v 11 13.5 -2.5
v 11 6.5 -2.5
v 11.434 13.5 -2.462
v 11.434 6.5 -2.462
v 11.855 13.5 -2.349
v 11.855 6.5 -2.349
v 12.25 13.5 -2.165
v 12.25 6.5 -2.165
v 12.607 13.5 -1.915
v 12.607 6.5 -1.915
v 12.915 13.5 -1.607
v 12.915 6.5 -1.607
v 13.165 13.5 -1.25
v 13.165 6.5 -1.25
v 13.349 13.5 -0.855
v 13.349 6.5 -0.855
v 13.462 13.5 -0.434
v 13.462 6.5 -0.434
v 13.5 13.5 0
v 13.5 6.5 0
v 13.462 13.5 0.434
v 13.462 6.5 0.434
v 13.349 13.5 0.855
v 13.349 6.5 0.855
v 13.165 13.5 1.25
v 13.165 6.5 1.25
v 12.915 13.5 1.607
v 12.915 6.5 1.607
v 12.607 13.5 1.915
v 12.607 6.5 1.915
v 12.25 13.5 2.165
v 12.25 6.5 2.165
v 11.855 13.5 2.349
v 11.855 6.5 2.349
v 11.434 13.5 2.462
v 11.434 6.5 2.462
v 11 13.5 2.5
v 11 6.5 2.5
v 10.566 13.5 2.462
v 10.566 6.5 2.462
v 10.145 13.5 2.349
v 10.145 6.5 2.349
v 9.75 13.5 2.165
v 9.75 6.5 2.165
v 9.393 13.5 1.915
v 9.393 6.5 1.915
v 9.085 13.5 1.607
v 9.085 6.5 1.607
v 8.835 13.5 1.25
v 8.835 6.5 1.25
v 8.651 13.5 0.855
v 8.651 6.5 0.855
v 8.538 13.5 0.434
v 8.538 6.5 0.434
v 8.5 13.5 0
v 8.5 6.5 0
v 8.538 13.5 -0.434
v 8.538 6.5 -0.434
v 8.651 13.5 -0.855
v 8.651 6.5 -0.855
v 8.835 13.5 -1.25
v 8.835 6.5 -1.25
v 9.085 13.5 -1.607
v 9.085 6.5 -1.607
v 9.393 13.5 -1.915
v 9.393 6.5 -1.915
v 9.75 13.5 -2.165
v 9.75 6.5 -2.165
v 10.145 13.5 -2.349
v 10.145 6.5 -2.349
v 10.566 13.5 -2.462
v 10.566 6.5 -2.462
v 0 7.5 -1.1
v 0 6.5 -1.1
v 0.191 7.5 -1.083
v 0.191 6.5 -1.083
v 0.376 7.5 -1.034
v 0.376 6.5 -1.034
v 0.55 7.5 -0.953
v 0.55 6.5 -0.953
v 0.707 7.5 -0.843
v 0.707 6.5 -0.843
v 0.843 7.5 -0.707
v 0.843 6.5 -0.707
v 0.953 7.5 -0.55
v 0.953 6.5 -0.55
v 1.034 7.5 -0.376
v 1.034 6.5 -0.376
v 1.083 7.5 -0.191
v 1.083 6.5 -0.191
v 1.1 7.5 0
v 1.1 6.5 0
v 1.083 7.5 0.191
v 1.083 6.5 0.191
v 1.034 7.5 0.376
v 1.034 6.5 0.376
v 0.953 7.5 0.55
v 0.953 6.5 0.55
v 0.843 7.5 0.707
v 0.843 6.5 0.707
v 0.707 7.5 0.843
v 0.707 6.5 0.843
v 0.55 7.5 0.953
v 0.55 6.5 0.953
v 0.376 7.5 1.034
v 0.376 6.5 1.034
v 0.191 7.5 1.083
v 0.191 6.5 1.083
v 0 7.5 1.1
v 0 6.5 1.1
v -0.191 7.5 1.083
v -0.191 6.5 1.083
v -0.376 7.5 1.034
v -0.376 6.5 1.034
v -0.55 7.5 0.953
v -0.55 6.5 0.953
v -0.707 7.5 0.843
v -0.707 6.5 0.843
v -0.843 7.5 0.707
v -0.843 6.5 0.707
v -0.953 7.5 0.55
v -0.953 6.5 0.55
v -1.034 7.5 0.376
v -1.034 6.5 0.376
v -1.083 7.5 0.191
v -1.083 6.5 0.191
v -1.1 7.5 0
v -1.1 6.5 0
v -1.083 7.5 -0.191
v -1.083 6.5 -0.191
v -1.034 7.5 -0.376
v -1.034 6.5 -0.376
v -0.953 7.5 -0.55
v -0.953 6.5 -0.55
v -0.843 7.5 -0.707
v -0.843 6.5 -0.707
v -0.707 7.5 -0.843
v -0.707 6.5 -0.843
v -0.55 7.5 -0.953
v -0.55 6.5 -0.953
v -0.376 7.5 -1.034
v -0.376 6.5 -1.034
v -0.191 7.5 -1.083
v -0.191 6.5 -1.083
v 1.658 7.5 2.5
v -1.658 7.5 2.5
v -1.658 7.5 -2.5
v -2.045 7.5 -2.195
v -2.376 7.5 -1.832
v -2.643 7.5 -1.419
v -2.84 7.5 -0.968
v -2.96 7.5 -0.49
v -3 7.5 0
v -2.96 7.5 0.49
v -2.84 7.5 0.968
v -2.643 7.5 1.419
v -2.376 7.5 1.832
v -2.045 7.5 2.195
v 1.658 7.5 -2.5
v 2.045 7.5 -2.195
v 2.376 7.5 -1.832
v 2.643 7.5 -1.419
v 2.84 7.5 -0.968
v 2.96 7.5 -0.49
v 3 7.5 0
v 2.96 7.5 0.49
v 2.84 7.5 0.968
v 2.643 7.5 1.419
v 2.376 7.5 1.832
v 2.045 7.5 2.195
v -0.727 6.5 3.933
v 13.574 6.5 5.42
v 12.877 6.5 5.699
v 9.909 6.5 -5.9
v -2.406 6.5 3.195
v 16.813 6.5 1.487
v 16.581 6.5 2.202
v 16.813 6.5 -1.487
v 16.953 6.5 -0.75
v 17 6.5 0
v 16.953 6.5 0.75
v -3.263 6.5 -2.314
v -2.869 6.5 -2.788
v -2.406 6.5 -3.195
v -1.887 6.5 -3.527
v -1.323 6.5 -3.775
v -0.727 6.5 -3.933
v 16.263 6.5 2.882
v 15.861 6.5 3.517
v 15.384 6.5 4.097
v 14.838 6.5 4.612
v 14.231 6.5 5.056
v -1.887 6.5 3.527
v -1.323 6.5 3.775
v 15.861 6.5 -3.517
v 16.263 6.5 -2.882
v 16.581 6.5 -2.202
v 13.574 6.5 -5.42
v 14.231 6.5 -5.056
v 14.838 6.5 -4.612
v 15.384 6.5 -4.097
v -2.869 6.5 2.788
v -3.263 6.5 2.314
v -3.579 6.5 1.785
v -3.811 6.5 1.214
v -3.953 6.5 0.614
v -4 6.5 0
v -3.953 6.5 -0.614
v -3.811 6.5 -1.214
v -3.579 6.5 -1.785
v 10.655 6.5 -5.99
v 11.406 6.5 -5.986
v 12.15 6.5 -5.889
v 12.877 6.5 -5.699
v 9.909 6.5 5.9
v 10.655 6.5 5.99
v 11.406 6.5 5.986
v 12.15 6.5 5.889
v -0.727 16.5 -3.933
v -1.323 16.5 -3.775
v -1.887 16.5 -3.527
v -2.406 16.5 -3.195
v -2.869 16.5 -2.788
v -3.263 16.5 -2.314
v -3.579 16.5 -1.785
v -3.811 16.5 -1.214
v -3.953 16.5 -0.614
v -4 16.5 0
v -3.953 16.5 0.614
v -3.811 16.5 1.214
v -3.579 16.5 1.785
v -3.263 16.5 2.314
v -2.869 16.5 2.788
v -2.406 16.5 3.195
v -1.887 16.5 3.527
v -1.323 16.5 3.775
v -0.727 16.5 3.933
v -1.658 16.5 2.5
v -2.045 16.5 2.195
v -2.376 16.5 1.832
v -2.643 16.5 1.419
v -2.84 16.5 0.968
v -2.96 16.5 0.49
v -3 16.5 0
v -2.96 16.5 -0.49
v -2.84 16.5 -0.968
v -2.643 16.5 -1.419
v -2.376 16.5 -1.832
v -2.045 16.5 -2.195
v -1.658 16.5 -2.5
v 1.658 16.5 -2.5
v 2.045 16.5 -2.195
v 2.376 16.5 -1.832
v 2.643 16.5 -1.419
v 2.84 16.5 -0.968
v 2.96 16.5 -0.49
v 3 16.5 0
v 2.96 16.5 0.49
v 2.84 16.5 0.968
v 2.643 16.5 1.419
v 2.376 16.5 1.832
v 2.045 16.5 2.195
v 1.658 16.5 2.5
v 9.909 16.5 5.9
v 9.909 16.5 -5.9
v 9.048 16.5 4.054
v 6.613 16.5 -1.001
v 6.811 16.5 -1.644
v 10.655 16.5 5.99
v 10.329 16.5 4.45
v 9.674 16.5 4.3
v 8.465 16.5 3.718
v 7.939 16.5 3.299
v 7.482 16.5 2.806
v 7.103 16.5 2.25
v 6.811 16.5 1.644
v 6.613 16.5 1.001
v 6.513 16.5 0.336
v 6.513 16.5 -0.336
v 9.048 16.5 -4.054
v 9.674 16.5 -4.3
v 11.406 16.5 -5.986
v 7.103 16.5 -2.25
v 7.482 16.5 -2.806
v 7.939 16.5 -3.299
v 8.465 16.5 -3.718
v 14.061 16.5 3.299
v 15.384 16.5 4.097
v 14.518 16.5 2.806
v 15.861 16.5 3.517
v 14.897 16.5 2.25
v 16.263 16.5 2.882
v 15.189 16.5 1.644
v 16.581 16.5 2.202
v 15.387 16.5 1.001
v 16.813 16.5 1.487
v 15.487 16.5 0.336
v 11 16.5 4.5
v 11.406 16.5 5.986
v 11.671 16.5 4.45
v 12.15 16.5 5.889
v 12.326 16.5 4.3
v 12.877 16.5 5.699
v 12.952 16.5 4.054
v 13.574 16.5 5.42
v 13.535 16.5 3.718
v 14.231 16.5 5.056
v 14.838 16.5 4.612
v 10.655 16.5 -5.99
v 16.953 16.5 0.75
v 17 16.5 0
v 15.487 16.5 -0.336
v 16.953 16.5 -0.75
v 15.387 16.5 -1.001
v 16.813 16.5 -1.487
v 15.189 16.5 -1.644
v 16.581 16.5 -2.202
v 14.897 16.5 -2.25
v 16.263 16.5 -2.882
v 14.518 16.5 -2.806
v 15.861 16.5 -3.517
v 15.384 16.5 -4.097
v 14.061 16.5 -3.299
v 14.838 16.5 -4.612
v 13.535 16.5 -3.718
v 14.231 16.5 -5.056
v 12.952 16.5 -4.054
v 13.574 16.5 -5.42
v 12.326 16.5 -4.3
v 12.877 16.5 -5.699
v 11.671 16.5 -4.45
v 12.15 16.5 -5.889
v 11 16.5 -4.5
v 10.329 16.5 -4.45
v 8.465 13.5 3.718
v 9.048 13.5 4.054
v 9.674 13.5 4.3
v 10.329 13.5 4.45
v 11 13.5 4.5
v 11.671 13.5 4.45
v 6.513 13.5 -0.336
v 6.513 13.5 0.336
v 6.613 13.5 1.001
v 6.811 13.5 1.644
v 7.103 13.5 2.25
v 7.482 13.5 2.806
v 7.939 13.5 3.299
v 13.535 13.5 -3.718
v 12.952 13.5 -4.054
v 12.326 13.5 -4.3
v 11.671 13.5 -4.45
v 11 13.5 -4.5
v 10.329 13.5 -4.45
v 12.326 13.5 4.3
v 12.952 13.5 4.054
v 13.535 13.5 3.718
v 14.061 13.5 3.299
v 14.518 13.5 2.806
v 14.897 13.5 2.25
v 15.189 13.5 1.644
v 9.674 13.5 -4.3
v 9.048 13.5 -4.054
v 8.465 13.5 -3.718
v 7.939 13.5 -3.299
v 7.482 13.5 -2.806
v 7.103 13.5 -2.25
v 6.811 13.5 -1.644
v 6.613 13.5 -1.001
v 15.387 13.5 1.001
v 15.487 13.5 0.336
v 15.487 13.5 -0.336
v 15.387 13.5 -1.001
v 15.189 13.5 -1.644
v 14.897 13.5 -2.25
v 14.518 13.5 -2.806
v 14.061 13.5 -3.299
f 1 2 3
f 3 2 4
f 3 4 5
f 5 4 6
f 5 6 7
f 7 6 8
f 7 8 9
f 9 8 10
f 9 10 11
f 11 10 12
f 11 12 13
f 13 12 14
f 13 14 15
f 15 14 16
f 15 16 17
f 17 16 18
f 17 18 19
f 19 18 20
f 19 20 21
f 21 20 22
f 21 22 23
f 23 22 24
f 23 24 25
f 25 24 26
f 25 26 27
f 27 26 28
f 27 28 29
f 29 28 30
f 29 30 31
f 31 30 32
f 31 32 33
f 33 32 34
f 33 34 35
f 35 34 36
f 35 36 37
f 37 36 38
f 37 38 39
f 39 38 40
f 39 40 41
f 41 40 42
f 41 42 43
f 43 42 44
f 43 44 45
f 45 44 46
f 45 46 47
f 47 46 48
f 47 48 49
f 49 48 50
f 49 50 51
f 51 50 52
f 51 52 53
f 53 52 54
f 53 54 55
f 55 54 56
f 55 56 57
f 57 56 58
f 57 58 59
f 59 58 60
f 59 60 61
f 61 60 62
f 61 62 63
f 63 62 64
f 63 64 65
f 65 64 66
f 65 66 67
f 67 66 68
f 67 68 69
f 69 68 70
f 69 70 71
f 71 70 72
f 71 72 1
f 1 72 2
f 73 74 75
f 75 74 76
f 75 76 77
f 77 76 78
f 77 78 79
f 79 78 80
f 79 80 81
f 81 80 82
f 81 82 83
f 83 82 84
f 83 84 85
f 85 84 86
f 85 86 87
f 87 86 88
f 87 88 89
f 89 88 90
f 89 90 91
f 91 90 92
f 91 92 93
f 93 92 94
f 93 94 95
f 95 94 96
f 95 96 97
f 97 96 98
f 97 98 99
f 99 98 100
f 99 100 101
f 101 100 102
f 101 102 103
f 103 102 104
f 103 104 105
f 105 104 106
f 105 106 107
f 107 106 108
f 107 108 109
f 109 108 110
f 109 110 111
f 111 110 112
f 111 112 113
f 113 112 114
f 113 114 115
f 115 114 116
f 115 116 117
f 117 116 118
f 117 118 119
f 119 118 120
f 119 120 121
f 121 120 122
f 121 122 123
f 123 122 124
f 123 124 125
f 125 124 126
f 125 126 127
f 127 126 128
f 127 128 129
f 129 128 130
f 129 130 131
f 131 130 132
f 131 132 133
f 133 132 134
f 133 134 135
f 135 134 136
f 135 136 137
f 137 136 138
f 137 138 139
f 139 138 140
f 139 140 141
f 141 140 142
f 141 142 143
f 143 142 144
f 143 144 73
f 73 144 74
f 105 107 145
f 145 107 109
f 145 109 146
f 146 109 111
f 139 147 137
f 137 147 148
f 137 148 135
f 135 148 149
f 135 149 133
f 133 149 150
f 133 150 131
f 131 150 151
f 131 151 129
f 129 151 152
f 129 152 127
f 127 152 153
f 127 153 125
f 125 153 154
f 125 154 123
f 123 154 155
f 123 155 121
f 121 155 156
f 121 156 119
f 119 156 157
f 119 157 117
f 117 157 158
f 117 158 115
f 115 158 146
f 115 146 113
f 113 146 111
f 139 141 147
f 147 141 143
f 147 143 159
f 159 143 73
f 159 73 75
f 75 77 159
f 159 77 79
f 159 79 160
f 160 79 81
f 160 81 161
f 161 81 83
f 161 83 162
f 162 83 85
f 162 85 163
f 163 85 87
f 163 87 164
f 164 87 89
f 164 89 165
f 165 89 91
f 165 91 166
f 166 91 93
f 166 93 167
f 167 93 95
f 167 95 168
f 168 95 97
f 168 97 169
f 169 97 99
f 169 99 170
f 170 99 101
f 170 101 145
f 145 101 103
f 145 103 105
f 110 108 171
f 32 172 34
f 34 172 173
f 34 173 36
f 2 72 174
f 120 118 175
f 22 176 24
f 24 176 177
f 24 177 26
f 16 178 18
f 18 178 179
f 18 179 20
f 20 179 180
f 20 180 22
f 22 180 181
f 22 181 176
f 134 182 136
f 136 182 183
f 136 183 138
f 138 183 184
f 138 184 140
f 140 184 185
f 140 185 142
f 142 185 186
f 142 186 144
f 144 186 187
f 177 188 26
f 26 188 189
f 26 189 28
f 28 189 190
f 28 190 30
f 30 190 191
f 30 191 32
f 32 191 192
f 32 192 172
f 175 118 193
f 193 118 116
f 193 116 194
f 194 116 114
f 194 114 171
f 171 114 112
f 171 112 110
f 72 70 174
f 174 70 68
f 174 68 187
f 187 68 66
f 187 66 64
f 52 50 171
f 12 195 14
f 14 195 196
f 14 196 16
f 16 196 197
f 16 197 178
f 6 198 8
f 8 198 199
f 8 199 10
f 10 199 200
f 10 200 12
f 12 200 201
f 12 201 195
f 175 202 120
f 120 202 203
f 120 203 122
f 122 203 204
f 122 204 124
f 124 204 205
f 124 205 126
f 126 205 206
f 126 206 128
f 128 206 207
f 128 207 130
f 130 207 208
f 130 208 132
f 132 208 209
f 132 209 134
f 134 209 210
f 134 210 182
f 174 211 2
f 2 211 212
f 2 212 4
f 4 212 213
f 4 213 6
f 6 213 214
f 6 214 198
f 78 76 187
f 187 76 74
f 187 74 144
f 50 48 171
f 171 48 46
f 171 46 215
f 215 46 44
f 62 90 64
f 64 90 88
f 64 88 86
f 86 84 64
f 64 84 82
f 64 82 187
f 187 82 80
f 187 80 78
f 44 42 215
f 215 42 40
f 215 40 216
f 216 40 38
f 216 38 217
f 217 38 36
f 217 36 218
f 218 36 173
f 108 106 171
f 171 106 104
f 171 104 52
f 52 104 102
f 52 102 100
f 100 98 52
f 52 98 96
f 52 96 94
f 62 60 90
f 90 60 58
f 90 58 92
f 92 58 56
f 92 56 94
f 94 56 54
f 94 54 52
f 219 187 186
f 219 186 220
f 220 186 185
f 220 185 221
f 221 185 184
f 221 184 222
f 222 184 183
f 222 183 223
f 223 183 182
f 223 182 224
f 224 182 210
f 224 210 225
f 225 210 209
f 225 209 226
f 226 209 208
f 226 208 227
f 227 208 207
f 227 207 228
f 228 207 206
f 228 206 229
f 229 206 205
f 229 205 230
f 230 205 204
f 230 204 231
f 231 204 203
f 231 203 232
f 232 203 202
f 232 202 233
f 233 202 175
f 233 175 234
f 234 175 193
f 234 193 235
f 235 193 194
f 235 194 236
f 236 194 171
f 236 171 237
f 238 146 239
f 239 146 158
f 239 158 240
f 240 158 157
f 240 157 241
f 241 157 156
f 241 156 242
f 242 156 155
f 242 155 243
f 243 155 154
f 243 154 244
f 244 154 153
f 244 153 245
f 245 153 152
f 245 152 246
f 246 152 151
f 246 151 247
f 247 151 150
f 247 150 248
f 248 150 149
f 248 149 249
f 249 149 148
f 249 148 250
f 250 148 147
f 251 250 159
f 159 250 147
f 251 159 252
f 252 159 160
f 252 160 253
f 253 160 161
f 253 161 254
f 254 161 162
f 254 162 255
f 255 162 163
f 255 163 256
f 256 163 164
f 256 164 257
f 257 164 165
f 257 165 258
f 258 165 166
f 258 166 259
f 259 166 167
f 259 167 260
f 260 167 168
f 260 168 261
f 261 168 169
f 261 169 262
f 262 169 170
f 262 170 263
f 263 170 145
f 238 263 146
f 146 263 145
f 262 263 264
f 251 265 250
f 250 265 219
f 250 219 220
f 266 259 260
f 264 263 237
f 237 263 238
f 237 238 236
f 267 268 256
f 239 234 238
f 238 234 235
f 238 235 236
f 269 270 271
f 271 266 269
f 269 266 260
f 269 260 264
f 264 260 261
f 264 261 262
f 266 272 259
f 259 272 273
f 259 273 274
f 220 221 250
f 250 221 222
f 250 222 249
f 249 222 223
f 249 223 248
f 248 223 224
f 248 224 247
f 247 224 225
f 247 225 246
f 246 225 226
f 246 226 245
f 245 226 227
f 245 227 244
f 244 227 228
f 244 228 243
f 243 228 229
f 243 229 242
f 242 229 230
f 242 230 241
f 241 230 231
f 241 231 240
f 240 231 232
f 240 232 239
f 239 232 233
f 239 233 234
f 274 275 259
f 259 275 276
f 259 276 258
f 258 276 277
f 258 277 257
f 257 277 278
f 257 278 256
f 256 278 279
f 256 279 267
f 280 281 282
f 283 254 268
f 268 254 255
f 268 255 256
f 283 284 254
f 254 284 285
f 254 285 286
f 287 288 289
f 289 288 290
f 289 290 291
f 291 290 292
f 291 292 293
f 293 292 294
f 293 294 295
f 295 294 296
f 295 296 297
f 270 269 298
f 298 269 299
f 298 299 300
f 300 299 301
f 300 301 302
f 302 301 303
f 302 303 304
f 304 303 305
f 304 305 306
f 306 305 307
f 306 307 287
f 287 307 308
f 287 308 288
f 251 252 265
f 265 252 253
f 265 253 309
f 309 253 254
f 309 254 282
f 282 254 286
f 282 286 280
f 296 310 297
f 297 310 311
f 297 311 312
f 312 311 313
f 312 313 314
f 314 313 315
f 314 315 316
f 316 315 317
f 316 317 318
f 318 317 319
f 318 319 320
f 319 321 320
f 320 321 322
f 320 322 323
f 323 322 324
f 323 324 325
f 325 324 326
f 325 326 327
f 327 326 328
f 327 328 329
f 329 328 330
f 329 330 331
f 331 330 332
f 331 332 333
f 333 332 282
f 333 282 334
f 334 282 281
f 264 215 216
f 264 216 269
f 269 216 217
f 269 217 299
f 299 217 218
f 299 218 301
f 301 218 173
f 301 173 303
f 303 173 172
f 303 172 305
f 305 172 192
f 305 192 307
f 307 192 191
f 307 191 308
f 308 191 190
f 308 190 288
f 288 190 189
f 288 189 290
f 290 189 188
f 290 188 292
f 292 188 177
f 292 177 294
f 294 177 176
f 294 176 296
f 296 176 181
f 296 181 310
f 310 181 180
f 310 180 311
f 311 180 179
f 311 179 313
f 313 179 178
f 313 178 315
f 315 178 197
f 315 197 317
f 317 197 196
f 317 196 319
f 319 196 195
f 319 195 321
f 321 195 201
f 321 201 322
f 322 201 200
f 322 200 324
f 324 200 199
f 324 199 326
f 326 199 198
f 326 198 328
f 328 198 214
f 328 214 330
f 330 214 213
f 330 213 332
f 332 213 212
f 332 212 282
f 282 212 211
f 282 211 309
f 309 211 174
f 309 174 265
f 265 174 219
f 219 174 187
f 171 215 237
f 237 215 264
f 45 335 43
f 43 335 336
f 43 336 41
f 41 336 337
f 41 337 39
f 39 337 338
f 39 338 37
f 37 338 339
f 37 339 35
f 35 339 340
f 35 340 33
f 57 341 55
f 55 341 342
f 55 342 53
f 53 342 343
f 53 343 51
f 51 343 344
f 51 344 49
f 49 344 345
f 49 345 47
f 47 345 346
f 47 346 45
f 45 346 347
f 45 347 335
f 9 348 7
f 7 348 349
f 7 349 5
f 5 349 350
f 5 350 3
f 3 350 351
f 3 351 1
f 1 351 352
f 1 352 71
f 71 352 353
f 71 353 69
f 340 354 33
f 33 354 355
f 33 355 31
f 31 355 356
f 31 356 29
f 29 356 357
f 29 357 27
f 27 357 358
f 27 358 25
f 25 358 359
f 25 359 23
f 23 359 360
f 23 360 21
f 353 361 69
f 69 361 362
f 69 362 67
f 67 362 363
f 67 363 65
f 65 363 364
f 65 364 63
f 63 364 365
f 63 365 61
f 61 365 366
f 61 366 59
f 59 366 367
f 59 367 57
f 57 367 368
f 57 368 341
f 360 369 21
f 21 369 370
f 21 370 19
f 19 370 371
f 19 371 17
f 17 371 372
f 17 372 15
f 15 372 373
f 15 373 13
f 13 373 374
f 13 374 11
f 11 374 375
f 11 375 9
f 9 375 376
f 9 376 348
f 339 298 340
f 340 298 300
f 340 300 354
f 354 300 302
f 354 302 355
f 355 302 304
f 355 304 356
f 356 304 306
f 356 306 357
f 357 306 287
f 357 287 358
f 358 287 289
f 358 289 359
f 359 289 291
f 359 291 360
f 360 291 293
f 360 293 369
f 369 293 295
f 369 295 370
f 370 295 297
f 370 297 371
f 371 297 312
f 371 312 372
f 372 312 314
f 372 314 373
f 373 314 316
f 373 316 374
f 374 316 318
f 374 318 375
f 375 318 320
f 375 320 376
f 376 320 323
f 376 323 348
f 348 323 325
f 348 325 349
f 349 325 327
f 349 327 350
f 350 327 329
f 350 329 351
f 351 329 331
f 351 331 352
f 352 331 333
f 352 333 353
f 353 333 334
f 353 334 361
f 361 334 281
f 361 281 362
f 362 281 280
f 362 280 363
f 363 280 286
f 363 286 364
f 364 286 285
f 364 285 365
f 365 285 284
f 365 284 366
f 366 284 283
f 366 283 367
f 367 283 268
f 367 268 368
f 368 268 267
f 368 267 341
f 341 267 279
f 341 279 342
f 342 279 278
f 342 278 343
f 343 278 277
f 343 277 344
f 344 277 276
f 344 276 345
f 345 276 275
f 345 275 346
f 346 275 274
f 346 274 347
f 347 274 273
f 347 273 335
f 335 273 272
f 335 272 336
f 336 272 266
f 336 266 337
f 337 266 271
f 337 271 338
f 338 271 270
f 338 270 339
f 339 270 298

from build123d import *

# Parameters (mm, degrees)
SKETCH_1_R          = 1.5
SKETCH_1_R_2        = 1.1
EXTRUDE_1_DEPTH     = 6.5
SKETCH_2_R          = 4
SKETCH_2_R_2        = 1.1
EXTRUDE_2_DEPTH     = 1
EXTRUDE_3_DEPTH     = 9
SKETCH_4_R          = 2.5
EXTRUDE_4_DEPTH     = 10
SKETCH_5_R          = 4.5
CUT_EXTRUDE_1_DEPTH = 3
SKETCH_6_R          = 1.5
CUT_EXTRUDE_3_DEPTH = 6.5


with BuildPart() as part:
    # Эскиз1 → Бобышка-Вытянуть1 (new body)
    with BuildSketch(Plane(origin=(0, 0, 0), x_dir=(1, 0, 0), z_dir=(0, 1, 0))):
        with Locations(Location((0, 0, 0), (0, 0, 90))):
            Circle(SKETCH_1_R)
        with Locations(Location((0, 0, 0), (0, 0, 90))):
            Circle(SKETCH_1_R_2, mode=Mode.SUBTRACT)
    extrude(amount=EXTRUDE_1_DEPTH)

    # Эскиз2 → Бобышка-Вытянуть2 (add)
    with BuildSketch(Plane(origin=(0, 6.5, 0), x_dir=(1, 0, 0), z_dir=(0, 1, 0))):
        with Locations(Location((0, 0, 0), (0, 0, 270))):
            Circle(SKETCH_2_R)
        with Locations(Location((0, 0, 0), (0, 0, 90))):
            Circle(SKETCH_2_R_2, mode=Mode.SUBTRACT)
    extrude(amount=EXTRUDE_2_DEPTH)

    # Эскиз3 → Бобышка-Вытянуть3 (add)
    with BuildSketch(Plane(origin=(0, 7.5, 0), x_dir=(1, 0, 0), z_dir=(0, 1, 0))):
        with BuildLine():
            ThreePointArc((-3, 0), (-2.643382037, 1.418637165), (-1.658312395, 2.5))
            ThreePointArc((-1.658312395, 2.5), (0, 3), (1.658312395, 2.5))
            ThreePointArc((1.658312395, 2.5), (2.643382037, 1.418637165), (3, 0))
            Line((3, 0), (4, 0))
            ThreePointArc((4, 0), (0, 4), (-4, 0))
            Line((-4, 0), (-3, 0))
        make_face()
        with BuildLine():
            ThreePointArc((-1.658312395, -2.5), (-2.643382037, -1.418637165), (-3, 0))
            Line((-3, 0), (-4, 0))
            ThreePointArc((-4, 0), (0, -4), (4, 0))
            Line((4, 0), (3, 0))
            ThreePointArc((3, 0), (2.643382037, -1.418637165), (1.658312395, -2.5))
            ThreePointArc((1.658312395, -2.5), (0, -3), (-1.658312395, -2.5))
        make_face()
        with BuildLine():
            ThreePointArc((1.658312395, 2.5), (0, 3), (-1.658312395, 2.5))
            Line((-1.658312395, 2.5), (1.658312395, 2.5))
        make_face()
        with BuildLine():
            Line((1.658312395, -2.5), (-1.658312395, -2.5))
            ThreePointArc((-1.658312395, -2.5), (0, -3), (1.658312395, -2.5))
        make_face()
    extrude(amount=EXTRUDE_3_DEPTH)

    # Эскиз4 → Бобышка-Вытянуть4 (add)
    with BuildSketch(Plane.XZ.offset(-6.5)):
        with BuildLine():
            ThreePointArc((-0.727272727, 3.933328664), (4, 0), (-0.727272727, -3.933328664))
            Line((-0.727272727, -3.933328664), (9.909090909, -5.899992996))
            ThreePointArc((9.909090909, -5.899992996), (17, 0), (9.909090909, 5.899992996))
            Line((9.909090909, 5.899992996), (-0.727272727, 3.933328664))
        make_face()
        with Locations(Location((11, 0, 0), (0, 0, 270))):
            Circle(SKETCH_4_R, mode=Mode.SUBTRACT)
    extrude(amount=-EXTRUDE_4_DEPTH)

    # Эскиз5 → Вырез-Вытянуть1 (cut)
    with BuildSketch(Plane(origin=(0, 16.5, 0), x_dir=(1, 0, 0), z_dir=(0, 1, 0))):
        with Locations(Location((11, 0, 0), (0, 0, 270))):
            Circle(SKETCH_5_R)
    extrude(amount=-CUT_EXTRUDE_1_DEPTH, mode=Mode.SUBTRACT)

    # Эскиз6 → Вырез-Вытянуть3 (cut)
    with BuildSketch(Plane.XZ):
        Circle(SKETCH_6_R)
    extrude(amount=-CUT_EXTRUDE_3_DEPTH, mode=Mode.SUBTRACT)


solid = part.part
